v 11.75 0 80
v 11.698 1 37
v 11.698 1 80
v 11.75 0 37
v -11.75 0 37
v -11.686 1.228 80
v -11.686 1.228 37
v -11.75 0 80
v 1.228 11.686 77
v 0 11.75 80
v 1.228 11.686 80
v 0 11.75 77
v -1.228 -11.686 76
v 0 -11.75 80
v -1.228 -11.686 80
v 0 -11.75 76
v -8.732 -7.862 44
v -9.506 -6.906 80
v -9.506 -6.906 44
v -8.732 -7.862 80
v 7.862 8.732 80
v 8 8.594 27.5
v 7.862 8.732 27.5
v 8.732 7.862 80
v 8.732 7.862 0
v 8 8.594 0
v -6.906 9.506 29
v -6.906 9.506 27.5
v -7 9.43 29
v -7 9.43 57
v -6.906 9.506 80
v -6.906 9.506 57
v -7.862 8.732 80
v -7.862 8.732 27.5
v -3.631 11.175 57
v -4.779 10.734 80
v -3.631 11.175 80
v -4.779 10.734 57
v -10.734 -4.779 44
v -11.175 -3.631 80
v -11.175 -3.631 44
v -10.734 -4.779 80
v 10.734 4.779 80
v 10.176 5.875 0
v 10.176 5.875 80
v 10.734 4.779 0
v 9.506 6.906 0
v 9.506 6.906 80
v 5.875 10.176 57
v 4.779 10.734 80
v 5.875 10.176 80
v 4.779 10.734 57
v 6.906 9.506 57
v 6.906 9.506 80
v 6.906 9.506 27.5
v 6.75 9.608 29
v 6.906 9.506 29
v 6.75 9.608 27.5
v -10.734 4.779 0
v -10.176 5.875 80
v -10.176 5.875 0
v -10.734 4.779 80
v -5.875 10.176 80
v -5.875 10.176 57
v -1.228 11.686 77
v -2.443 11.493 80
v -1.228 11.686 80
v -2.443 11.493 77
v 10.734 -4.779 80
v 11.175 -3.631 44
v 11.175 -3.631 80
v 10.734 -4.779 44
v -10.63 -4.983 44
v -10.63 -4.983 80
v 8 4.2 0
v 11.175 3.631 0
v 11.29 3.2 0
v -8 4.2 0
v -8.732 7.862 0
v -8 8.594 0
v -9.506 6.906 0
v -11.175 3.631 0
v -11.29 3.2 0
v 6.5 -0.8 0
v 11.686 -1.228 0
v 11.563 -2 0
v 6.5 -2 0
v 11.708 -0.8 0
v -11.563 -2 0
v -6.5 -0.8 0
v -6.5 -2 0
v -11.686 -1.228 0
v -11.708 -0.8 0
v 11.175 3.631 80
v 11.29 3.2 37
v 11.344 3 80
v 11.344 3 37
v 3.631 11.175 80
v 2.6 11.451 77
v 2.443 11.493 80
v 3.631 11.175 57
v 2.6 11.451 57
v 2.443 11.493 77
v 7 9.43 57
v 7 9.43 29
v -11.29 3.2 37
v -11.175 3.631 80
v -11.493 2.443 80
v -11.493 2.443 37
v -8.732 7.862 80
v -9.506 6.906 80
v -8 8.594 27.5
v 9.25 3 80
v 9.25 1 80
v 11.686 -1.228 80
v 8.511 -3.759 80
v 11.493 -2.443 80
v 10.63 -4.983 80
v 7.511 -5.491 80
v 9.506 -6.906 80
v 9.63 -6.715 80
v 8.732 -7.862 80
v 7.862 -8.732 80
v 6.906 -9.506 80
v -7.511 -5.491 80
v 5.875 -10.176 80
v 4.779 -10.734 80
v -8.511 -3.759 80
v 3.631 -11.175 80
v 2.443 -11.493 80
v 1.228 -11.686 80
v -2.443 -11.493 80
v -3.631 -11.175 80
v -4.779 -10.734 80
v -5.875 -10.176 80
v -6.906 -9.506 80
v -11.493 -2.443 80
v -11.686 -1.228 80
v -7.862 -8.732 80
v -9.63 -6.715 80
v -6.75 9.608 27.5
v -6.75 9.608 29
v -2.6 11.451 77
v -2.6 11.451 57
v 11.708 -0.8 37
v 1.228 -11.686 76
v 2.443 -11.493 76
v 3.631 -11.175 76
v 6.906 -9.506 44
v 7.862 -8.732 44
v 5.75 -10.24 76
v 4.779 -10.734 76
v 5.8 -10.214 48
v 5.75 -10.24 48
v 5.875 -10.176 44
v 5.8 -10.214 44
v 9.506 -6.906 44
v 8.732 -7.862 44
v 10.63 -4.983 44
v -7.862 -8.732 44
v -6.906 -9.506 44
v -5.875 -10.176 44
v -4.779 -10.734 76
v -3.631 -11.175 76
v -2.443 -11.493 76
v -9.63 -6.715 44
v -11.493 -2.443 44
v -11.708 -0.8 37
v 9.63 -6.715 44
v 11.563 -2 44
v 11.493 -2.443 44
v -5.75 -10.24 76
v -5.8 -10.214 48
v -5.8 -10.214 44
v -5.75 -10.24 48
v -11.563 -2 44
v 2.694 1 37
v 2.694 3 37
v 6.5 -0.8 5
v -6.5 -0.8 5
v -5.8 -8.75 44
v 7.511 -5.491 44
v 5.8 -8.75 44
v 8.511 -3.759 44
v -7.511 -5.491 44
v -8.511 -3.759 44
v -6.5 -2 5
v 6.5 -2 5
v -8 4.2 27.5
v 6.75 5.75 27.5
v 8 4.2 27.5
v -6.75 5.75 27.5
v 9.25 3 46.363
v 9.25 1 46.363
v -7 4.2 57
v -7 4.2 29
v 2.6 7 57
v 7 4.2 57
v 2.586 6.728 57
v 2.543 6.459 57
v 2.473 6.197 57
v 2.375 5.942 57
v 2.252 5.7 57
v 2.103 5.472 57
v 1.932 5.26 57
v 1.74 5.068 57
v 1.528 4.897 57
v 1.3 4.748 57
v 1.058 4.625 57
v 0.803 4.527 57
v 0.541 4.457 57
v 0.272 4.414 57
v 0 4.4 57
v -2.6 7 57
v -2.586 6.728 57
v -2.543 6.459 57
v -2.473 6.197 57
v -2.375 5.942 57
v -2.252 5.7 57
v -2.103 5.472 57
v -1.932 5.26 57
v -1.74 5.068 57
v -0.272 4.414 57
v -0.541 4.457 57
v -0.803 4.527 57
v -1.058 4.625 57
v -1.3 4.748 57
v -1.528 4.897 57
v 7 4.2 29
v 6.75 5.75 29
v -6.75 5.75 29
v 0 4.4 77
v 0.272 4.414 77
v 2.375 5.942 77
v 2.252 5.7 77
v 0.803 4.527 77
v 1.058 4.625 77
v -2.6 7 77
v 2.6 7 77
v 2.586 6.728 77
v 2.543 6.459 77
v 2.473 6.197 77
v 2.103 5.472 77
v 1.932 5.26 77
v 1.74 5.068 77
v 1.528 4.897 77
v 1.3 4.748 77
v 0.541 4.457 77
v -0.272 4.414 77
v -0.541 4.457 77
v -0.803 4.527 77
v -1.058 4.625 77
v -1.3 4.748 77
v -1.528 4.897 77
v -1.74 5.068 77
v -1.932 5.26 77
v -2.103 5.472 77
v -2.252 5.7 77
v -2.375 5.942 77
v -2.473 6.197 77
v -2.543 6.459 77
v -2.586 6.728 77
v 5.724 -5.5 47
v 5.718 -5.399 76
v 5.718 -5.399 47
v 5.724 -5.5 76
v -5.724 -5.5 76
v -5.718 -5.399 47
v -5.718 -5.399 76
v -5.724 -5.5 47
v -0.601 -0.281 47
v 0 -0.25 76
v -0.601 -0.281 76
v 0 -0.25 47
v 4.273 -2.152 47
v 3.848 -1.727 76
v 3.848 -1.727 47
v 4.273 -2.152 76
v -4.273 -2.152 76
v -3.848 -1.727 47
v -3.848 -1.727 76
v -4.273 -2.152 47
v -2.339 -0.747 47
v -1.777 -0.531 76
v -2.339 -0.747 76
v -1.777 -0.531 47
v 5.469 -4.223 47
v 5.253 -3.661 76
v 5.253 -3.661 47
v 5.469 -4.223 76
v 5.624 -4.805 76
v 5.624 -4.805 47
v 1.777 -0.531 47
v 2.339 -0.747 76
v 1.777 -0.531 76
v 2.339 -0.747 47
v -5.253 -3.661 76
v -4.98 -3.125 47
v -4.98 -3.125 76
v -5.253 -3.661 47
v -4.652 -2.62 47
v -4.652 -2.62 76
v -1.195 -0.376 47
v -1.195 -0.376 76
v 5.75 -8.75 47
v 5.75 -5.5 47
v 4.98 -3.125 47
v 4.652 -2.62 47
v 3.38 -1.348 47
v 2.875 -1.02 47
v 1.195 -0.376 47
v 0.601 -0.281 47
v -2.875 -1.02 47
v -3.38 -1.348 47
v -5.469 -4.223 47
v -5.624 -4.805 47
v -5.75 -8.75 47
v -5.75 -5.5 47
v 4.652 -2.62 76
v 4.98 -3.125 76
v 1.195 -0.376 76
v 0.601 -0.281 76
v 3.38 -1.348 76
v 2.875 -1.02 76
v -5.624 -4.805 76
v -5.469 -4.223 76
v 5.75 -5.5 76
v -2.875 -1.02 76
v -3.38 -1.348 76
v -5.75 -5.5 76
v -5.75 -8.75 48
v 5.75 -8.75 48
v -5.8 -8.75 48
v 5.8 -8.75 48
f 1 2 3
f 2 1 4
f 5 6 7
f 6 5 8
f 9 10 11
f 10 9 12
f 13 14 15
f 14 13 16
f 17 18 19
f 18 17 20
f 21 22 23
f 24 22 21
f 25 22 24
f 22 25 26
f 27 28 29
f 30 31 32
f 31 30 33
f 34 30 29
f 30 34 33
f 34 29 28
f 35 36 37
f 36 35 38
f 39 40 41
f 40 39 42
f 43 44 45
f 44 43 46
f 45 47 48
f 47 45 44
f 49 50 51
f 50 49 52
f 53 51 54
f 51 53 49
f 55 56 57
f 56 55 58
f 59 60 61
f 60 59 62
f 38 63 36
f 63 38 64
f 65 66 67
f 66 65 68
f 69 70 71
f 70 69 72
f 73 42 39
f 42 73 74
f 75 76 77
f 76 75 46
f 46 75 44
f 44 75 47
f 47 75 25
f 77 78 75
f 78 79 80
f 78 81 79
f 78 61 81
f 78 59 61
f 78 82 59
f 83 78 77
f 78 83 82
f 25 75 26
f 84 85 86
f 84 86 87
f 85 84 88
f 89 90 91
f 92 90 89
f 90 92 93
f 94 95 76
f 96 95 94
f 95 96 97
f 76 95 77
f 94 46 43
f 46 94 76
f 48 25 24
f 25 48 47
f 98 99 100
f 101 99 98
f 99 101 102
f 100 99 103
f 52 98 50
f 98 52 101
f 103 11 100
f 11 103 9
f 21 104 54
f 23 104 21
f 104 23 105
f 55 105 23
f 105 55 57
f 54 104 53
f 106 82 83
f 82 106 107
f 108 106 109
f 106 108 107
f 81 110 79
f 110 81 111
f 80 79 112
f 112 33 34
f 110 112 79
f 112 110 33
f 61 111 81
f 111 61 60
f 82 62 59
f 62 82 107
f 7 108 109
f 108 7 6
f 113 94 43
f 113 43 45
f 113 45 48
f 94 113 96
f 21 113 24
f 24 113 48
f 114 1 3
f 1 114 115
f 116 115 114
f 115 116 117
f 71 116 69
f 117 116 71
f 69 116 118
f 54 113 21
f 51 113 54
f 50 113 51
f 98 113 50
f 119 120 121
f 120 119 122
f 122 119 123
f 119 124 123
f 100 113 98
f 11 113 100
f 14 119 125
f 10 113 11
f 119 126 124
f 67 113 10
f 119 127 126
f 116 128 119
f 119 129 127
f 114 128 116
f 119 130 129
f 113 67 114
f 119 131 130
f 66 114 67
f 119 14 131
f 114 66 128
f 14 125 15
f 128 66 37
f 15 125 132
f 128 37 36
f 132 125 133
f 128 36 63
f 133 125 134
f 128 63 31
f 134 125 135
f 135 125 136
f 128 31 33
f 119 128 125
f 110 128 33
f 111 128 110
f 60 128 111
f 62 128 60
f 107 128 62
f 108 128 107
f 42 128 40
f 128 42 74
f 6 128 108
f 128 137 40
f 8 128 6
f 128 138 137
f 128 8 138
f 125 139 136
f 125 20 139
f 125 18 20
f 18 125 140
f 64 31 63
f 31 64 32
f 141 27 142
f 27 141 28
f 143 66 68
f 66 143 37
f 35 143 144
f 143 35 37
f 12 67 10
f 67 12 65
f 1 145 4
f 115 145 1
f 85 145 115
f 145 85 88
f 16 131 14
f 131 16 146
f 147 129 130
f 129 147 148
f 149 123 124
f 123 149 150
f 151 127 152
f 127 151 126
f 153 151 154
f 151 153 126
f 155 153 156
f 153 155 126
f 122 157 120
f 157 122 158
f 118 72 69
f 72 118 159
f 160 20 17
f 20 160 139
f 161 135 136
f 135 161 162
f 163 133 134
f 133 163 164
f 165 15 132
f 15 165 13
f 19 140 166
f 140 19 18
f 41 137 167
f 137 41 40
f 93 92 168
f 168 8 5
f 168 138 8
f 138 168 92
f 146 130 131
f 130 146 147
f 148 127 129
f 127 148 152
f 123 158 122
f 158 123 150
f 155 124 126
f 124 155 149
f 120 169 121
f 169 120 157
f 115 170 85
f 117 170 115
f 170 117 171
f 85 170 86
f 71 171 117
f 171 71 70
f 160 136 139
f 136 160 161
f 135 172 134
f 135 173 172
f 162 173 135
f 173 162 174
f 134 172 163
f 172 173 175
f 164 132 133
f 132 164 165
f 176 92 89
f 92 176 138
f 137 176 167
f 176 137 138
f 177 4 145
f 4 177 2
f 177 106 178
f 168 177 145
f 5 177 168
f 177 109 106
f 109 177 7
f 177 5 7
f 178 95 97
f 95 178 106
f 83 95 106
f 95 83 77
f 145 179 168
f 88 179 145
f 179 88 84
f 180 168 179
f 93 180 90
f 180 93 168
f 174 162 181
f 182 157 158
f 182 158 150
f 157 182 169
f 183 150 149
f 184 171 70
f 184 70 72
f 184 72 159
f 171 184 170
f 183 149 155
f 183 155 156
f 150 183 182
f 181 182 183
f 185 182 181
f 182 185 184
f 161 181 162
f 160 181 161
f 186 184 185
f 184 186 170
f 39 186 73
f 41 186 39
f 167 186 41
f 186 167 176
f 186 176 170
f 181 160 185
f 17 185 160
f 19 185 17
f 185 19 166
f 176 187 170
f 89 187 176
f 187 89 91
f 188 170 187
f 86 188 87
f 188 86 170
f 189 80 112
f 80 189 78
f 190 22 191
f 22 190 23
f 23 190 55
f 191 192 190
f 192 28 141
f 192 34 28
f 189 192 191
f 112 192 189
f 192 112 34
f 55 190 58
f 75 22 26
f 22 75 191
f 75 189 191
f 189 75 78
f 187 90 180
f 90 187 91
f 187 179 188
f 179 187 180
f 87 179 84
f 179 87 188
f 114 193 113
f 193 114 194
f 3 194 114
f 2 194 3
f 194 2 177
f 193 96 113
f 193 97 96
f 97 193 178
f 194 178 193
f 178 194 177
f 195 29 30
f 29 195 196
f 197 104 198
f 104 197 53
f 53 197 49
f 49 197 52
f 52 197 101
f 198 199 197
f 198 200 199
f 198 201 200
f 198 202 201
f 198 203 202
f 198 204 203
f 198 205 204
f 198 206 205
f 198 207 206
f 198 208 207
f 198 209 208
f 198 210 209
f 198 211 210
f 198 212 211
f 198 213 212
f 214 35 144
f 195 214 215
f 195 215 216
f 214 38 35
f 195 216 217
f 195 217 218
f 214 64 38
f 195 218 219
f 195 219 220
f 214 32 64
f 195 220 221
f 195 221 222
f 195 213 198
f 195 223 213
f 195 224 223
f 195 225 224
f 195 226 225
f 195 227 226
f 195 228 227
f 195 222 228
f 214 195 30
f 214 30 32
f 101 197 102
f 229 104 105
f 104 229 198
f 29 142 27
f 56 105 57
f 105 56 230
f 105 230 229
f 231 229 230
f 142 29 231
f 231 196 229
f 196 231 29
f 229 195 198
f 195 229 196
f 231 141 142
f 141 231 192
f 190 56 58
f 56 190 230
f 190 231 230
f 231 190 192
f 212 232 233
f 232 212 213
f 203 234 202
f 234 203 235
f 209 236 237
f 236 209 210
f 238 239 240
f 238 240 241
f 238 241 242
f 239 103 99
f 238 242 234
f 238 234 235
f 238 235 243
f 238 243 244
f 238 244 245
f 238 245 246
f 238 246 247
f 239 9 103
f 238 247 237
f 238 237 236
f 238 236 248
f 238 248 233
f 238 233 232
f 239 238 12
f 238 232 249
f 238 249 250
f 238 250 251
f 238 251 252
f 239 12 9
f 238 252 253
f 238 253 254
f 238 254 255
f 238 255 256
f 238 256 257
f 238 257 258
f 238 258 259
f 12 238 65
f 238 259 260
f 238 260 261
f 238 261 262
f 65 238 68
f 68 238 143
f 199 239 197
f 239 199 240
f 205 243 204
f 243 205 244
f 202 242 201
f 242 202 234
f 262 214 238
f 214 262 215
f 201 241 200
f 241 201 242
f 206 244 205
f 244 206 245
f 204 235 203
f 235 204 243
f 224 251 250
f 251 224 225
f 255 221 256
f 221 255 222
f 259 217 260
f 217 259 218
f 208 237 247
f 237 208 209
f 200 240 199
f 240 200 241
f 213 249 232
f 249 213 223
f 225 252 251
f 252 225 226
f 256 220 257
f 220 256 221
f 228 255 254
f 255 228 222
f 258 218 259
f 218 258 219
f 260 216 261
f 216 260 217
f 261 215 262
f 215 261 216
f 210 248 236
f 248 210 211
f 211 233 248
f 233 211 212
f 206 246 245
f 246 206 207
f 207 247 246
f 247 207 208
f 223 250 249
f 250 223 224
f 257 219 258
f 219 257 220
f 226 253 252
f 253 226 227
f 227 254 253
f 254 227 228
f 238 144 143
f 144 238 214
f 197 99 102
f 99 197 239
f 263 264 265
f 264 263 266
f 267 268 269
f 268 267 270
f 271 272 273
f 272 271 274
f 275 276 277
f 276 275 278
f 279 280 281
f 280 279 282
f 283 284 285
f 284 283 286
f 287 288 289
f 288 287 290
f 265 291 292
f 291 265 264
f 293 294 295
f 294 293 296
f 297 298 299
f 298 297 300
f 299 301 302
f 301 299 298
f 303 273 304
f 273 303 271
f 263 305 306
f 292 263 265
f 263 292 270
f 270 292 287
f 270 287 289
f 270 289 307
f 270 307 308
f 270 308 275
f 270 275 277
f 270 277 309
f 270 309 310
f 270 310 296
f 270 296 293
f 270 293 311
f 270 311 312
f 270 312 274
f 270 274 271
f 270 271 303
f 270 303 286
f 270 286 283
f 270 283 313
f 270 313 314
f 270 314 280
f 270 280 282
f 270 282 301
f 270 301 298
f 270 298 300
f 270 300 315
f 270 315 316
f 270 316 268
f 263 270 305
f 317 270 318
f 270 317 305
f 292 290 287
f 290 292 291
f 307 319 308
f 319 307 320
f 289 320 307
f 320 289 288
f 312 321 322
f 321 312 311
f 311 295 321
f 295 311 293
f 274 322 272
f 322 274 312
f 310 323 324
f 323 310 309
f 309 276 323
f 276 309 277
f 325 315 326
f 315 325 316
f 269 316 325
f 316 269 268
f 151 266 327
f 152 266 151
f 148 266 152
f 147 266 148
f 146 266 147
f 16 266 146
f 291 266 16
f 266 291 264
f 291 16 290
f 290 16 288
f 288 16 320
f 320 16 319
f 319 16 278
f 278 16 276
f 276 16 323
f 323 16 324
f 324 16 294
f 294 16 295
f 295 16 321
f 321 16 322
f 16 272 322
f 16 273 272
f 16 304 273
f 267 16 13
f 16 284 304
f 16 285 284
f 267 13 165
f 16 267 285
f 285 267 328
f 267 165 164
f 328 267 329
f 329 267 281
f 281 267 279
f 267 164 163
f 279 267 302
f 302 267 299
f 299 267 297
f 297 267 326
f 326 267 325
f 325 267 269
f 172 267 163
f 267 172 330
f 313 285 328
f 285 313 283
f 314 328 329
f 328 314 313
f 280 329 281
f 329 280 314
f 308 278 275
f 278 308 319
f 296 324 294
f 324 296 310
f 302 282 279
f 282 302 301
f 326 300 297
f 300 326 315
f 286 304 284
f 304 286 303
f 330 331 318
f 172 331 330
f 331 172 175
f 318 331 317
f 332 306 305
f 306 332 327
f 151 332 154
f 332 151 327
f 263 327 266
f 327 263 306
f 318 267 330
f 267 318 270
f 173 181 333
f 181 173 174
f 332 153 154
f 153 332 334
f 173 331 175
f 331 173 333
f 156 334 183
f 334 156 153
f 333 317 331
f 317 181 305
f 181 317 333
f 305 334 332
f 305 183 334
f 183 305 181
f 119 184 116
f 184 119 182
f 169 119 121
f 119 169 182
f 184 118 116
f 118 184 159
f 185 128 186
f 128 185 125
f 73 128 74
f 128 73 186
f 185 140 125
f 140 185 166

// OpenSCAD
$fn = 60;

prumer = 23.5;
vyska = 80;

difference() {
    cylinder(r=prumer/2, h=vyska);
    translate([-prumer/2, -0.8, 0]) cube([prumer, 4, 37]);     //GPS
    translate([-prumer/2, -17, 0]) cube([prumer, 15, 44]);    //arduino
    translate([-16/2, 4.2, 0]) cube([16, 15, 27.5]);            //accelerometr, magnetometr, gyroskop
    translate([-13/2, -3, 0]) cube([13, 3, 5]);
    translate([prumer/2-2.5, 1, 35]) cube([5, 2, vyska-35]);   //antena GPS
    #translate([10, 1, 30]) rotate([0, -55, 0]) cube([20, 2, 10]);  //antena GPS
    translate([-14/2, 4.2, 29]) cube([14, 10, 28]);             //vysilacka
    translate([-13.5/2, prumer/2-6, 26]) cube([13.5, 8, 6]);
    translate([0, 7, 26+31]) cylinder(r=2.6, h=20);            //antena vysilacka
    translate([-2.6, 7, 26+31]) cube([2.6*2, 10, 20]);         //antena vysilacka
    translate([0, -6, 47]) cylinder(r=11.5/2, h=29);           //baterka
    translate([-11.5/2, -15.5, 47]) cube([11.5, 10, 29]);      //baterka
    translate([-5.8, -prumer/2, 43]) cube([5.8*2, 3, 5]);
    #rotate([0, 0, -30]) translate([prumer/2-2.5, -1, 35]) cube([5, 2, vyska-35]); //bzucak
    #rotate([0, 0, -90-60]) translate([prumer/2-2.5, -1, 35]) cube([5, 2, vyska-35]); //bzucak
}
